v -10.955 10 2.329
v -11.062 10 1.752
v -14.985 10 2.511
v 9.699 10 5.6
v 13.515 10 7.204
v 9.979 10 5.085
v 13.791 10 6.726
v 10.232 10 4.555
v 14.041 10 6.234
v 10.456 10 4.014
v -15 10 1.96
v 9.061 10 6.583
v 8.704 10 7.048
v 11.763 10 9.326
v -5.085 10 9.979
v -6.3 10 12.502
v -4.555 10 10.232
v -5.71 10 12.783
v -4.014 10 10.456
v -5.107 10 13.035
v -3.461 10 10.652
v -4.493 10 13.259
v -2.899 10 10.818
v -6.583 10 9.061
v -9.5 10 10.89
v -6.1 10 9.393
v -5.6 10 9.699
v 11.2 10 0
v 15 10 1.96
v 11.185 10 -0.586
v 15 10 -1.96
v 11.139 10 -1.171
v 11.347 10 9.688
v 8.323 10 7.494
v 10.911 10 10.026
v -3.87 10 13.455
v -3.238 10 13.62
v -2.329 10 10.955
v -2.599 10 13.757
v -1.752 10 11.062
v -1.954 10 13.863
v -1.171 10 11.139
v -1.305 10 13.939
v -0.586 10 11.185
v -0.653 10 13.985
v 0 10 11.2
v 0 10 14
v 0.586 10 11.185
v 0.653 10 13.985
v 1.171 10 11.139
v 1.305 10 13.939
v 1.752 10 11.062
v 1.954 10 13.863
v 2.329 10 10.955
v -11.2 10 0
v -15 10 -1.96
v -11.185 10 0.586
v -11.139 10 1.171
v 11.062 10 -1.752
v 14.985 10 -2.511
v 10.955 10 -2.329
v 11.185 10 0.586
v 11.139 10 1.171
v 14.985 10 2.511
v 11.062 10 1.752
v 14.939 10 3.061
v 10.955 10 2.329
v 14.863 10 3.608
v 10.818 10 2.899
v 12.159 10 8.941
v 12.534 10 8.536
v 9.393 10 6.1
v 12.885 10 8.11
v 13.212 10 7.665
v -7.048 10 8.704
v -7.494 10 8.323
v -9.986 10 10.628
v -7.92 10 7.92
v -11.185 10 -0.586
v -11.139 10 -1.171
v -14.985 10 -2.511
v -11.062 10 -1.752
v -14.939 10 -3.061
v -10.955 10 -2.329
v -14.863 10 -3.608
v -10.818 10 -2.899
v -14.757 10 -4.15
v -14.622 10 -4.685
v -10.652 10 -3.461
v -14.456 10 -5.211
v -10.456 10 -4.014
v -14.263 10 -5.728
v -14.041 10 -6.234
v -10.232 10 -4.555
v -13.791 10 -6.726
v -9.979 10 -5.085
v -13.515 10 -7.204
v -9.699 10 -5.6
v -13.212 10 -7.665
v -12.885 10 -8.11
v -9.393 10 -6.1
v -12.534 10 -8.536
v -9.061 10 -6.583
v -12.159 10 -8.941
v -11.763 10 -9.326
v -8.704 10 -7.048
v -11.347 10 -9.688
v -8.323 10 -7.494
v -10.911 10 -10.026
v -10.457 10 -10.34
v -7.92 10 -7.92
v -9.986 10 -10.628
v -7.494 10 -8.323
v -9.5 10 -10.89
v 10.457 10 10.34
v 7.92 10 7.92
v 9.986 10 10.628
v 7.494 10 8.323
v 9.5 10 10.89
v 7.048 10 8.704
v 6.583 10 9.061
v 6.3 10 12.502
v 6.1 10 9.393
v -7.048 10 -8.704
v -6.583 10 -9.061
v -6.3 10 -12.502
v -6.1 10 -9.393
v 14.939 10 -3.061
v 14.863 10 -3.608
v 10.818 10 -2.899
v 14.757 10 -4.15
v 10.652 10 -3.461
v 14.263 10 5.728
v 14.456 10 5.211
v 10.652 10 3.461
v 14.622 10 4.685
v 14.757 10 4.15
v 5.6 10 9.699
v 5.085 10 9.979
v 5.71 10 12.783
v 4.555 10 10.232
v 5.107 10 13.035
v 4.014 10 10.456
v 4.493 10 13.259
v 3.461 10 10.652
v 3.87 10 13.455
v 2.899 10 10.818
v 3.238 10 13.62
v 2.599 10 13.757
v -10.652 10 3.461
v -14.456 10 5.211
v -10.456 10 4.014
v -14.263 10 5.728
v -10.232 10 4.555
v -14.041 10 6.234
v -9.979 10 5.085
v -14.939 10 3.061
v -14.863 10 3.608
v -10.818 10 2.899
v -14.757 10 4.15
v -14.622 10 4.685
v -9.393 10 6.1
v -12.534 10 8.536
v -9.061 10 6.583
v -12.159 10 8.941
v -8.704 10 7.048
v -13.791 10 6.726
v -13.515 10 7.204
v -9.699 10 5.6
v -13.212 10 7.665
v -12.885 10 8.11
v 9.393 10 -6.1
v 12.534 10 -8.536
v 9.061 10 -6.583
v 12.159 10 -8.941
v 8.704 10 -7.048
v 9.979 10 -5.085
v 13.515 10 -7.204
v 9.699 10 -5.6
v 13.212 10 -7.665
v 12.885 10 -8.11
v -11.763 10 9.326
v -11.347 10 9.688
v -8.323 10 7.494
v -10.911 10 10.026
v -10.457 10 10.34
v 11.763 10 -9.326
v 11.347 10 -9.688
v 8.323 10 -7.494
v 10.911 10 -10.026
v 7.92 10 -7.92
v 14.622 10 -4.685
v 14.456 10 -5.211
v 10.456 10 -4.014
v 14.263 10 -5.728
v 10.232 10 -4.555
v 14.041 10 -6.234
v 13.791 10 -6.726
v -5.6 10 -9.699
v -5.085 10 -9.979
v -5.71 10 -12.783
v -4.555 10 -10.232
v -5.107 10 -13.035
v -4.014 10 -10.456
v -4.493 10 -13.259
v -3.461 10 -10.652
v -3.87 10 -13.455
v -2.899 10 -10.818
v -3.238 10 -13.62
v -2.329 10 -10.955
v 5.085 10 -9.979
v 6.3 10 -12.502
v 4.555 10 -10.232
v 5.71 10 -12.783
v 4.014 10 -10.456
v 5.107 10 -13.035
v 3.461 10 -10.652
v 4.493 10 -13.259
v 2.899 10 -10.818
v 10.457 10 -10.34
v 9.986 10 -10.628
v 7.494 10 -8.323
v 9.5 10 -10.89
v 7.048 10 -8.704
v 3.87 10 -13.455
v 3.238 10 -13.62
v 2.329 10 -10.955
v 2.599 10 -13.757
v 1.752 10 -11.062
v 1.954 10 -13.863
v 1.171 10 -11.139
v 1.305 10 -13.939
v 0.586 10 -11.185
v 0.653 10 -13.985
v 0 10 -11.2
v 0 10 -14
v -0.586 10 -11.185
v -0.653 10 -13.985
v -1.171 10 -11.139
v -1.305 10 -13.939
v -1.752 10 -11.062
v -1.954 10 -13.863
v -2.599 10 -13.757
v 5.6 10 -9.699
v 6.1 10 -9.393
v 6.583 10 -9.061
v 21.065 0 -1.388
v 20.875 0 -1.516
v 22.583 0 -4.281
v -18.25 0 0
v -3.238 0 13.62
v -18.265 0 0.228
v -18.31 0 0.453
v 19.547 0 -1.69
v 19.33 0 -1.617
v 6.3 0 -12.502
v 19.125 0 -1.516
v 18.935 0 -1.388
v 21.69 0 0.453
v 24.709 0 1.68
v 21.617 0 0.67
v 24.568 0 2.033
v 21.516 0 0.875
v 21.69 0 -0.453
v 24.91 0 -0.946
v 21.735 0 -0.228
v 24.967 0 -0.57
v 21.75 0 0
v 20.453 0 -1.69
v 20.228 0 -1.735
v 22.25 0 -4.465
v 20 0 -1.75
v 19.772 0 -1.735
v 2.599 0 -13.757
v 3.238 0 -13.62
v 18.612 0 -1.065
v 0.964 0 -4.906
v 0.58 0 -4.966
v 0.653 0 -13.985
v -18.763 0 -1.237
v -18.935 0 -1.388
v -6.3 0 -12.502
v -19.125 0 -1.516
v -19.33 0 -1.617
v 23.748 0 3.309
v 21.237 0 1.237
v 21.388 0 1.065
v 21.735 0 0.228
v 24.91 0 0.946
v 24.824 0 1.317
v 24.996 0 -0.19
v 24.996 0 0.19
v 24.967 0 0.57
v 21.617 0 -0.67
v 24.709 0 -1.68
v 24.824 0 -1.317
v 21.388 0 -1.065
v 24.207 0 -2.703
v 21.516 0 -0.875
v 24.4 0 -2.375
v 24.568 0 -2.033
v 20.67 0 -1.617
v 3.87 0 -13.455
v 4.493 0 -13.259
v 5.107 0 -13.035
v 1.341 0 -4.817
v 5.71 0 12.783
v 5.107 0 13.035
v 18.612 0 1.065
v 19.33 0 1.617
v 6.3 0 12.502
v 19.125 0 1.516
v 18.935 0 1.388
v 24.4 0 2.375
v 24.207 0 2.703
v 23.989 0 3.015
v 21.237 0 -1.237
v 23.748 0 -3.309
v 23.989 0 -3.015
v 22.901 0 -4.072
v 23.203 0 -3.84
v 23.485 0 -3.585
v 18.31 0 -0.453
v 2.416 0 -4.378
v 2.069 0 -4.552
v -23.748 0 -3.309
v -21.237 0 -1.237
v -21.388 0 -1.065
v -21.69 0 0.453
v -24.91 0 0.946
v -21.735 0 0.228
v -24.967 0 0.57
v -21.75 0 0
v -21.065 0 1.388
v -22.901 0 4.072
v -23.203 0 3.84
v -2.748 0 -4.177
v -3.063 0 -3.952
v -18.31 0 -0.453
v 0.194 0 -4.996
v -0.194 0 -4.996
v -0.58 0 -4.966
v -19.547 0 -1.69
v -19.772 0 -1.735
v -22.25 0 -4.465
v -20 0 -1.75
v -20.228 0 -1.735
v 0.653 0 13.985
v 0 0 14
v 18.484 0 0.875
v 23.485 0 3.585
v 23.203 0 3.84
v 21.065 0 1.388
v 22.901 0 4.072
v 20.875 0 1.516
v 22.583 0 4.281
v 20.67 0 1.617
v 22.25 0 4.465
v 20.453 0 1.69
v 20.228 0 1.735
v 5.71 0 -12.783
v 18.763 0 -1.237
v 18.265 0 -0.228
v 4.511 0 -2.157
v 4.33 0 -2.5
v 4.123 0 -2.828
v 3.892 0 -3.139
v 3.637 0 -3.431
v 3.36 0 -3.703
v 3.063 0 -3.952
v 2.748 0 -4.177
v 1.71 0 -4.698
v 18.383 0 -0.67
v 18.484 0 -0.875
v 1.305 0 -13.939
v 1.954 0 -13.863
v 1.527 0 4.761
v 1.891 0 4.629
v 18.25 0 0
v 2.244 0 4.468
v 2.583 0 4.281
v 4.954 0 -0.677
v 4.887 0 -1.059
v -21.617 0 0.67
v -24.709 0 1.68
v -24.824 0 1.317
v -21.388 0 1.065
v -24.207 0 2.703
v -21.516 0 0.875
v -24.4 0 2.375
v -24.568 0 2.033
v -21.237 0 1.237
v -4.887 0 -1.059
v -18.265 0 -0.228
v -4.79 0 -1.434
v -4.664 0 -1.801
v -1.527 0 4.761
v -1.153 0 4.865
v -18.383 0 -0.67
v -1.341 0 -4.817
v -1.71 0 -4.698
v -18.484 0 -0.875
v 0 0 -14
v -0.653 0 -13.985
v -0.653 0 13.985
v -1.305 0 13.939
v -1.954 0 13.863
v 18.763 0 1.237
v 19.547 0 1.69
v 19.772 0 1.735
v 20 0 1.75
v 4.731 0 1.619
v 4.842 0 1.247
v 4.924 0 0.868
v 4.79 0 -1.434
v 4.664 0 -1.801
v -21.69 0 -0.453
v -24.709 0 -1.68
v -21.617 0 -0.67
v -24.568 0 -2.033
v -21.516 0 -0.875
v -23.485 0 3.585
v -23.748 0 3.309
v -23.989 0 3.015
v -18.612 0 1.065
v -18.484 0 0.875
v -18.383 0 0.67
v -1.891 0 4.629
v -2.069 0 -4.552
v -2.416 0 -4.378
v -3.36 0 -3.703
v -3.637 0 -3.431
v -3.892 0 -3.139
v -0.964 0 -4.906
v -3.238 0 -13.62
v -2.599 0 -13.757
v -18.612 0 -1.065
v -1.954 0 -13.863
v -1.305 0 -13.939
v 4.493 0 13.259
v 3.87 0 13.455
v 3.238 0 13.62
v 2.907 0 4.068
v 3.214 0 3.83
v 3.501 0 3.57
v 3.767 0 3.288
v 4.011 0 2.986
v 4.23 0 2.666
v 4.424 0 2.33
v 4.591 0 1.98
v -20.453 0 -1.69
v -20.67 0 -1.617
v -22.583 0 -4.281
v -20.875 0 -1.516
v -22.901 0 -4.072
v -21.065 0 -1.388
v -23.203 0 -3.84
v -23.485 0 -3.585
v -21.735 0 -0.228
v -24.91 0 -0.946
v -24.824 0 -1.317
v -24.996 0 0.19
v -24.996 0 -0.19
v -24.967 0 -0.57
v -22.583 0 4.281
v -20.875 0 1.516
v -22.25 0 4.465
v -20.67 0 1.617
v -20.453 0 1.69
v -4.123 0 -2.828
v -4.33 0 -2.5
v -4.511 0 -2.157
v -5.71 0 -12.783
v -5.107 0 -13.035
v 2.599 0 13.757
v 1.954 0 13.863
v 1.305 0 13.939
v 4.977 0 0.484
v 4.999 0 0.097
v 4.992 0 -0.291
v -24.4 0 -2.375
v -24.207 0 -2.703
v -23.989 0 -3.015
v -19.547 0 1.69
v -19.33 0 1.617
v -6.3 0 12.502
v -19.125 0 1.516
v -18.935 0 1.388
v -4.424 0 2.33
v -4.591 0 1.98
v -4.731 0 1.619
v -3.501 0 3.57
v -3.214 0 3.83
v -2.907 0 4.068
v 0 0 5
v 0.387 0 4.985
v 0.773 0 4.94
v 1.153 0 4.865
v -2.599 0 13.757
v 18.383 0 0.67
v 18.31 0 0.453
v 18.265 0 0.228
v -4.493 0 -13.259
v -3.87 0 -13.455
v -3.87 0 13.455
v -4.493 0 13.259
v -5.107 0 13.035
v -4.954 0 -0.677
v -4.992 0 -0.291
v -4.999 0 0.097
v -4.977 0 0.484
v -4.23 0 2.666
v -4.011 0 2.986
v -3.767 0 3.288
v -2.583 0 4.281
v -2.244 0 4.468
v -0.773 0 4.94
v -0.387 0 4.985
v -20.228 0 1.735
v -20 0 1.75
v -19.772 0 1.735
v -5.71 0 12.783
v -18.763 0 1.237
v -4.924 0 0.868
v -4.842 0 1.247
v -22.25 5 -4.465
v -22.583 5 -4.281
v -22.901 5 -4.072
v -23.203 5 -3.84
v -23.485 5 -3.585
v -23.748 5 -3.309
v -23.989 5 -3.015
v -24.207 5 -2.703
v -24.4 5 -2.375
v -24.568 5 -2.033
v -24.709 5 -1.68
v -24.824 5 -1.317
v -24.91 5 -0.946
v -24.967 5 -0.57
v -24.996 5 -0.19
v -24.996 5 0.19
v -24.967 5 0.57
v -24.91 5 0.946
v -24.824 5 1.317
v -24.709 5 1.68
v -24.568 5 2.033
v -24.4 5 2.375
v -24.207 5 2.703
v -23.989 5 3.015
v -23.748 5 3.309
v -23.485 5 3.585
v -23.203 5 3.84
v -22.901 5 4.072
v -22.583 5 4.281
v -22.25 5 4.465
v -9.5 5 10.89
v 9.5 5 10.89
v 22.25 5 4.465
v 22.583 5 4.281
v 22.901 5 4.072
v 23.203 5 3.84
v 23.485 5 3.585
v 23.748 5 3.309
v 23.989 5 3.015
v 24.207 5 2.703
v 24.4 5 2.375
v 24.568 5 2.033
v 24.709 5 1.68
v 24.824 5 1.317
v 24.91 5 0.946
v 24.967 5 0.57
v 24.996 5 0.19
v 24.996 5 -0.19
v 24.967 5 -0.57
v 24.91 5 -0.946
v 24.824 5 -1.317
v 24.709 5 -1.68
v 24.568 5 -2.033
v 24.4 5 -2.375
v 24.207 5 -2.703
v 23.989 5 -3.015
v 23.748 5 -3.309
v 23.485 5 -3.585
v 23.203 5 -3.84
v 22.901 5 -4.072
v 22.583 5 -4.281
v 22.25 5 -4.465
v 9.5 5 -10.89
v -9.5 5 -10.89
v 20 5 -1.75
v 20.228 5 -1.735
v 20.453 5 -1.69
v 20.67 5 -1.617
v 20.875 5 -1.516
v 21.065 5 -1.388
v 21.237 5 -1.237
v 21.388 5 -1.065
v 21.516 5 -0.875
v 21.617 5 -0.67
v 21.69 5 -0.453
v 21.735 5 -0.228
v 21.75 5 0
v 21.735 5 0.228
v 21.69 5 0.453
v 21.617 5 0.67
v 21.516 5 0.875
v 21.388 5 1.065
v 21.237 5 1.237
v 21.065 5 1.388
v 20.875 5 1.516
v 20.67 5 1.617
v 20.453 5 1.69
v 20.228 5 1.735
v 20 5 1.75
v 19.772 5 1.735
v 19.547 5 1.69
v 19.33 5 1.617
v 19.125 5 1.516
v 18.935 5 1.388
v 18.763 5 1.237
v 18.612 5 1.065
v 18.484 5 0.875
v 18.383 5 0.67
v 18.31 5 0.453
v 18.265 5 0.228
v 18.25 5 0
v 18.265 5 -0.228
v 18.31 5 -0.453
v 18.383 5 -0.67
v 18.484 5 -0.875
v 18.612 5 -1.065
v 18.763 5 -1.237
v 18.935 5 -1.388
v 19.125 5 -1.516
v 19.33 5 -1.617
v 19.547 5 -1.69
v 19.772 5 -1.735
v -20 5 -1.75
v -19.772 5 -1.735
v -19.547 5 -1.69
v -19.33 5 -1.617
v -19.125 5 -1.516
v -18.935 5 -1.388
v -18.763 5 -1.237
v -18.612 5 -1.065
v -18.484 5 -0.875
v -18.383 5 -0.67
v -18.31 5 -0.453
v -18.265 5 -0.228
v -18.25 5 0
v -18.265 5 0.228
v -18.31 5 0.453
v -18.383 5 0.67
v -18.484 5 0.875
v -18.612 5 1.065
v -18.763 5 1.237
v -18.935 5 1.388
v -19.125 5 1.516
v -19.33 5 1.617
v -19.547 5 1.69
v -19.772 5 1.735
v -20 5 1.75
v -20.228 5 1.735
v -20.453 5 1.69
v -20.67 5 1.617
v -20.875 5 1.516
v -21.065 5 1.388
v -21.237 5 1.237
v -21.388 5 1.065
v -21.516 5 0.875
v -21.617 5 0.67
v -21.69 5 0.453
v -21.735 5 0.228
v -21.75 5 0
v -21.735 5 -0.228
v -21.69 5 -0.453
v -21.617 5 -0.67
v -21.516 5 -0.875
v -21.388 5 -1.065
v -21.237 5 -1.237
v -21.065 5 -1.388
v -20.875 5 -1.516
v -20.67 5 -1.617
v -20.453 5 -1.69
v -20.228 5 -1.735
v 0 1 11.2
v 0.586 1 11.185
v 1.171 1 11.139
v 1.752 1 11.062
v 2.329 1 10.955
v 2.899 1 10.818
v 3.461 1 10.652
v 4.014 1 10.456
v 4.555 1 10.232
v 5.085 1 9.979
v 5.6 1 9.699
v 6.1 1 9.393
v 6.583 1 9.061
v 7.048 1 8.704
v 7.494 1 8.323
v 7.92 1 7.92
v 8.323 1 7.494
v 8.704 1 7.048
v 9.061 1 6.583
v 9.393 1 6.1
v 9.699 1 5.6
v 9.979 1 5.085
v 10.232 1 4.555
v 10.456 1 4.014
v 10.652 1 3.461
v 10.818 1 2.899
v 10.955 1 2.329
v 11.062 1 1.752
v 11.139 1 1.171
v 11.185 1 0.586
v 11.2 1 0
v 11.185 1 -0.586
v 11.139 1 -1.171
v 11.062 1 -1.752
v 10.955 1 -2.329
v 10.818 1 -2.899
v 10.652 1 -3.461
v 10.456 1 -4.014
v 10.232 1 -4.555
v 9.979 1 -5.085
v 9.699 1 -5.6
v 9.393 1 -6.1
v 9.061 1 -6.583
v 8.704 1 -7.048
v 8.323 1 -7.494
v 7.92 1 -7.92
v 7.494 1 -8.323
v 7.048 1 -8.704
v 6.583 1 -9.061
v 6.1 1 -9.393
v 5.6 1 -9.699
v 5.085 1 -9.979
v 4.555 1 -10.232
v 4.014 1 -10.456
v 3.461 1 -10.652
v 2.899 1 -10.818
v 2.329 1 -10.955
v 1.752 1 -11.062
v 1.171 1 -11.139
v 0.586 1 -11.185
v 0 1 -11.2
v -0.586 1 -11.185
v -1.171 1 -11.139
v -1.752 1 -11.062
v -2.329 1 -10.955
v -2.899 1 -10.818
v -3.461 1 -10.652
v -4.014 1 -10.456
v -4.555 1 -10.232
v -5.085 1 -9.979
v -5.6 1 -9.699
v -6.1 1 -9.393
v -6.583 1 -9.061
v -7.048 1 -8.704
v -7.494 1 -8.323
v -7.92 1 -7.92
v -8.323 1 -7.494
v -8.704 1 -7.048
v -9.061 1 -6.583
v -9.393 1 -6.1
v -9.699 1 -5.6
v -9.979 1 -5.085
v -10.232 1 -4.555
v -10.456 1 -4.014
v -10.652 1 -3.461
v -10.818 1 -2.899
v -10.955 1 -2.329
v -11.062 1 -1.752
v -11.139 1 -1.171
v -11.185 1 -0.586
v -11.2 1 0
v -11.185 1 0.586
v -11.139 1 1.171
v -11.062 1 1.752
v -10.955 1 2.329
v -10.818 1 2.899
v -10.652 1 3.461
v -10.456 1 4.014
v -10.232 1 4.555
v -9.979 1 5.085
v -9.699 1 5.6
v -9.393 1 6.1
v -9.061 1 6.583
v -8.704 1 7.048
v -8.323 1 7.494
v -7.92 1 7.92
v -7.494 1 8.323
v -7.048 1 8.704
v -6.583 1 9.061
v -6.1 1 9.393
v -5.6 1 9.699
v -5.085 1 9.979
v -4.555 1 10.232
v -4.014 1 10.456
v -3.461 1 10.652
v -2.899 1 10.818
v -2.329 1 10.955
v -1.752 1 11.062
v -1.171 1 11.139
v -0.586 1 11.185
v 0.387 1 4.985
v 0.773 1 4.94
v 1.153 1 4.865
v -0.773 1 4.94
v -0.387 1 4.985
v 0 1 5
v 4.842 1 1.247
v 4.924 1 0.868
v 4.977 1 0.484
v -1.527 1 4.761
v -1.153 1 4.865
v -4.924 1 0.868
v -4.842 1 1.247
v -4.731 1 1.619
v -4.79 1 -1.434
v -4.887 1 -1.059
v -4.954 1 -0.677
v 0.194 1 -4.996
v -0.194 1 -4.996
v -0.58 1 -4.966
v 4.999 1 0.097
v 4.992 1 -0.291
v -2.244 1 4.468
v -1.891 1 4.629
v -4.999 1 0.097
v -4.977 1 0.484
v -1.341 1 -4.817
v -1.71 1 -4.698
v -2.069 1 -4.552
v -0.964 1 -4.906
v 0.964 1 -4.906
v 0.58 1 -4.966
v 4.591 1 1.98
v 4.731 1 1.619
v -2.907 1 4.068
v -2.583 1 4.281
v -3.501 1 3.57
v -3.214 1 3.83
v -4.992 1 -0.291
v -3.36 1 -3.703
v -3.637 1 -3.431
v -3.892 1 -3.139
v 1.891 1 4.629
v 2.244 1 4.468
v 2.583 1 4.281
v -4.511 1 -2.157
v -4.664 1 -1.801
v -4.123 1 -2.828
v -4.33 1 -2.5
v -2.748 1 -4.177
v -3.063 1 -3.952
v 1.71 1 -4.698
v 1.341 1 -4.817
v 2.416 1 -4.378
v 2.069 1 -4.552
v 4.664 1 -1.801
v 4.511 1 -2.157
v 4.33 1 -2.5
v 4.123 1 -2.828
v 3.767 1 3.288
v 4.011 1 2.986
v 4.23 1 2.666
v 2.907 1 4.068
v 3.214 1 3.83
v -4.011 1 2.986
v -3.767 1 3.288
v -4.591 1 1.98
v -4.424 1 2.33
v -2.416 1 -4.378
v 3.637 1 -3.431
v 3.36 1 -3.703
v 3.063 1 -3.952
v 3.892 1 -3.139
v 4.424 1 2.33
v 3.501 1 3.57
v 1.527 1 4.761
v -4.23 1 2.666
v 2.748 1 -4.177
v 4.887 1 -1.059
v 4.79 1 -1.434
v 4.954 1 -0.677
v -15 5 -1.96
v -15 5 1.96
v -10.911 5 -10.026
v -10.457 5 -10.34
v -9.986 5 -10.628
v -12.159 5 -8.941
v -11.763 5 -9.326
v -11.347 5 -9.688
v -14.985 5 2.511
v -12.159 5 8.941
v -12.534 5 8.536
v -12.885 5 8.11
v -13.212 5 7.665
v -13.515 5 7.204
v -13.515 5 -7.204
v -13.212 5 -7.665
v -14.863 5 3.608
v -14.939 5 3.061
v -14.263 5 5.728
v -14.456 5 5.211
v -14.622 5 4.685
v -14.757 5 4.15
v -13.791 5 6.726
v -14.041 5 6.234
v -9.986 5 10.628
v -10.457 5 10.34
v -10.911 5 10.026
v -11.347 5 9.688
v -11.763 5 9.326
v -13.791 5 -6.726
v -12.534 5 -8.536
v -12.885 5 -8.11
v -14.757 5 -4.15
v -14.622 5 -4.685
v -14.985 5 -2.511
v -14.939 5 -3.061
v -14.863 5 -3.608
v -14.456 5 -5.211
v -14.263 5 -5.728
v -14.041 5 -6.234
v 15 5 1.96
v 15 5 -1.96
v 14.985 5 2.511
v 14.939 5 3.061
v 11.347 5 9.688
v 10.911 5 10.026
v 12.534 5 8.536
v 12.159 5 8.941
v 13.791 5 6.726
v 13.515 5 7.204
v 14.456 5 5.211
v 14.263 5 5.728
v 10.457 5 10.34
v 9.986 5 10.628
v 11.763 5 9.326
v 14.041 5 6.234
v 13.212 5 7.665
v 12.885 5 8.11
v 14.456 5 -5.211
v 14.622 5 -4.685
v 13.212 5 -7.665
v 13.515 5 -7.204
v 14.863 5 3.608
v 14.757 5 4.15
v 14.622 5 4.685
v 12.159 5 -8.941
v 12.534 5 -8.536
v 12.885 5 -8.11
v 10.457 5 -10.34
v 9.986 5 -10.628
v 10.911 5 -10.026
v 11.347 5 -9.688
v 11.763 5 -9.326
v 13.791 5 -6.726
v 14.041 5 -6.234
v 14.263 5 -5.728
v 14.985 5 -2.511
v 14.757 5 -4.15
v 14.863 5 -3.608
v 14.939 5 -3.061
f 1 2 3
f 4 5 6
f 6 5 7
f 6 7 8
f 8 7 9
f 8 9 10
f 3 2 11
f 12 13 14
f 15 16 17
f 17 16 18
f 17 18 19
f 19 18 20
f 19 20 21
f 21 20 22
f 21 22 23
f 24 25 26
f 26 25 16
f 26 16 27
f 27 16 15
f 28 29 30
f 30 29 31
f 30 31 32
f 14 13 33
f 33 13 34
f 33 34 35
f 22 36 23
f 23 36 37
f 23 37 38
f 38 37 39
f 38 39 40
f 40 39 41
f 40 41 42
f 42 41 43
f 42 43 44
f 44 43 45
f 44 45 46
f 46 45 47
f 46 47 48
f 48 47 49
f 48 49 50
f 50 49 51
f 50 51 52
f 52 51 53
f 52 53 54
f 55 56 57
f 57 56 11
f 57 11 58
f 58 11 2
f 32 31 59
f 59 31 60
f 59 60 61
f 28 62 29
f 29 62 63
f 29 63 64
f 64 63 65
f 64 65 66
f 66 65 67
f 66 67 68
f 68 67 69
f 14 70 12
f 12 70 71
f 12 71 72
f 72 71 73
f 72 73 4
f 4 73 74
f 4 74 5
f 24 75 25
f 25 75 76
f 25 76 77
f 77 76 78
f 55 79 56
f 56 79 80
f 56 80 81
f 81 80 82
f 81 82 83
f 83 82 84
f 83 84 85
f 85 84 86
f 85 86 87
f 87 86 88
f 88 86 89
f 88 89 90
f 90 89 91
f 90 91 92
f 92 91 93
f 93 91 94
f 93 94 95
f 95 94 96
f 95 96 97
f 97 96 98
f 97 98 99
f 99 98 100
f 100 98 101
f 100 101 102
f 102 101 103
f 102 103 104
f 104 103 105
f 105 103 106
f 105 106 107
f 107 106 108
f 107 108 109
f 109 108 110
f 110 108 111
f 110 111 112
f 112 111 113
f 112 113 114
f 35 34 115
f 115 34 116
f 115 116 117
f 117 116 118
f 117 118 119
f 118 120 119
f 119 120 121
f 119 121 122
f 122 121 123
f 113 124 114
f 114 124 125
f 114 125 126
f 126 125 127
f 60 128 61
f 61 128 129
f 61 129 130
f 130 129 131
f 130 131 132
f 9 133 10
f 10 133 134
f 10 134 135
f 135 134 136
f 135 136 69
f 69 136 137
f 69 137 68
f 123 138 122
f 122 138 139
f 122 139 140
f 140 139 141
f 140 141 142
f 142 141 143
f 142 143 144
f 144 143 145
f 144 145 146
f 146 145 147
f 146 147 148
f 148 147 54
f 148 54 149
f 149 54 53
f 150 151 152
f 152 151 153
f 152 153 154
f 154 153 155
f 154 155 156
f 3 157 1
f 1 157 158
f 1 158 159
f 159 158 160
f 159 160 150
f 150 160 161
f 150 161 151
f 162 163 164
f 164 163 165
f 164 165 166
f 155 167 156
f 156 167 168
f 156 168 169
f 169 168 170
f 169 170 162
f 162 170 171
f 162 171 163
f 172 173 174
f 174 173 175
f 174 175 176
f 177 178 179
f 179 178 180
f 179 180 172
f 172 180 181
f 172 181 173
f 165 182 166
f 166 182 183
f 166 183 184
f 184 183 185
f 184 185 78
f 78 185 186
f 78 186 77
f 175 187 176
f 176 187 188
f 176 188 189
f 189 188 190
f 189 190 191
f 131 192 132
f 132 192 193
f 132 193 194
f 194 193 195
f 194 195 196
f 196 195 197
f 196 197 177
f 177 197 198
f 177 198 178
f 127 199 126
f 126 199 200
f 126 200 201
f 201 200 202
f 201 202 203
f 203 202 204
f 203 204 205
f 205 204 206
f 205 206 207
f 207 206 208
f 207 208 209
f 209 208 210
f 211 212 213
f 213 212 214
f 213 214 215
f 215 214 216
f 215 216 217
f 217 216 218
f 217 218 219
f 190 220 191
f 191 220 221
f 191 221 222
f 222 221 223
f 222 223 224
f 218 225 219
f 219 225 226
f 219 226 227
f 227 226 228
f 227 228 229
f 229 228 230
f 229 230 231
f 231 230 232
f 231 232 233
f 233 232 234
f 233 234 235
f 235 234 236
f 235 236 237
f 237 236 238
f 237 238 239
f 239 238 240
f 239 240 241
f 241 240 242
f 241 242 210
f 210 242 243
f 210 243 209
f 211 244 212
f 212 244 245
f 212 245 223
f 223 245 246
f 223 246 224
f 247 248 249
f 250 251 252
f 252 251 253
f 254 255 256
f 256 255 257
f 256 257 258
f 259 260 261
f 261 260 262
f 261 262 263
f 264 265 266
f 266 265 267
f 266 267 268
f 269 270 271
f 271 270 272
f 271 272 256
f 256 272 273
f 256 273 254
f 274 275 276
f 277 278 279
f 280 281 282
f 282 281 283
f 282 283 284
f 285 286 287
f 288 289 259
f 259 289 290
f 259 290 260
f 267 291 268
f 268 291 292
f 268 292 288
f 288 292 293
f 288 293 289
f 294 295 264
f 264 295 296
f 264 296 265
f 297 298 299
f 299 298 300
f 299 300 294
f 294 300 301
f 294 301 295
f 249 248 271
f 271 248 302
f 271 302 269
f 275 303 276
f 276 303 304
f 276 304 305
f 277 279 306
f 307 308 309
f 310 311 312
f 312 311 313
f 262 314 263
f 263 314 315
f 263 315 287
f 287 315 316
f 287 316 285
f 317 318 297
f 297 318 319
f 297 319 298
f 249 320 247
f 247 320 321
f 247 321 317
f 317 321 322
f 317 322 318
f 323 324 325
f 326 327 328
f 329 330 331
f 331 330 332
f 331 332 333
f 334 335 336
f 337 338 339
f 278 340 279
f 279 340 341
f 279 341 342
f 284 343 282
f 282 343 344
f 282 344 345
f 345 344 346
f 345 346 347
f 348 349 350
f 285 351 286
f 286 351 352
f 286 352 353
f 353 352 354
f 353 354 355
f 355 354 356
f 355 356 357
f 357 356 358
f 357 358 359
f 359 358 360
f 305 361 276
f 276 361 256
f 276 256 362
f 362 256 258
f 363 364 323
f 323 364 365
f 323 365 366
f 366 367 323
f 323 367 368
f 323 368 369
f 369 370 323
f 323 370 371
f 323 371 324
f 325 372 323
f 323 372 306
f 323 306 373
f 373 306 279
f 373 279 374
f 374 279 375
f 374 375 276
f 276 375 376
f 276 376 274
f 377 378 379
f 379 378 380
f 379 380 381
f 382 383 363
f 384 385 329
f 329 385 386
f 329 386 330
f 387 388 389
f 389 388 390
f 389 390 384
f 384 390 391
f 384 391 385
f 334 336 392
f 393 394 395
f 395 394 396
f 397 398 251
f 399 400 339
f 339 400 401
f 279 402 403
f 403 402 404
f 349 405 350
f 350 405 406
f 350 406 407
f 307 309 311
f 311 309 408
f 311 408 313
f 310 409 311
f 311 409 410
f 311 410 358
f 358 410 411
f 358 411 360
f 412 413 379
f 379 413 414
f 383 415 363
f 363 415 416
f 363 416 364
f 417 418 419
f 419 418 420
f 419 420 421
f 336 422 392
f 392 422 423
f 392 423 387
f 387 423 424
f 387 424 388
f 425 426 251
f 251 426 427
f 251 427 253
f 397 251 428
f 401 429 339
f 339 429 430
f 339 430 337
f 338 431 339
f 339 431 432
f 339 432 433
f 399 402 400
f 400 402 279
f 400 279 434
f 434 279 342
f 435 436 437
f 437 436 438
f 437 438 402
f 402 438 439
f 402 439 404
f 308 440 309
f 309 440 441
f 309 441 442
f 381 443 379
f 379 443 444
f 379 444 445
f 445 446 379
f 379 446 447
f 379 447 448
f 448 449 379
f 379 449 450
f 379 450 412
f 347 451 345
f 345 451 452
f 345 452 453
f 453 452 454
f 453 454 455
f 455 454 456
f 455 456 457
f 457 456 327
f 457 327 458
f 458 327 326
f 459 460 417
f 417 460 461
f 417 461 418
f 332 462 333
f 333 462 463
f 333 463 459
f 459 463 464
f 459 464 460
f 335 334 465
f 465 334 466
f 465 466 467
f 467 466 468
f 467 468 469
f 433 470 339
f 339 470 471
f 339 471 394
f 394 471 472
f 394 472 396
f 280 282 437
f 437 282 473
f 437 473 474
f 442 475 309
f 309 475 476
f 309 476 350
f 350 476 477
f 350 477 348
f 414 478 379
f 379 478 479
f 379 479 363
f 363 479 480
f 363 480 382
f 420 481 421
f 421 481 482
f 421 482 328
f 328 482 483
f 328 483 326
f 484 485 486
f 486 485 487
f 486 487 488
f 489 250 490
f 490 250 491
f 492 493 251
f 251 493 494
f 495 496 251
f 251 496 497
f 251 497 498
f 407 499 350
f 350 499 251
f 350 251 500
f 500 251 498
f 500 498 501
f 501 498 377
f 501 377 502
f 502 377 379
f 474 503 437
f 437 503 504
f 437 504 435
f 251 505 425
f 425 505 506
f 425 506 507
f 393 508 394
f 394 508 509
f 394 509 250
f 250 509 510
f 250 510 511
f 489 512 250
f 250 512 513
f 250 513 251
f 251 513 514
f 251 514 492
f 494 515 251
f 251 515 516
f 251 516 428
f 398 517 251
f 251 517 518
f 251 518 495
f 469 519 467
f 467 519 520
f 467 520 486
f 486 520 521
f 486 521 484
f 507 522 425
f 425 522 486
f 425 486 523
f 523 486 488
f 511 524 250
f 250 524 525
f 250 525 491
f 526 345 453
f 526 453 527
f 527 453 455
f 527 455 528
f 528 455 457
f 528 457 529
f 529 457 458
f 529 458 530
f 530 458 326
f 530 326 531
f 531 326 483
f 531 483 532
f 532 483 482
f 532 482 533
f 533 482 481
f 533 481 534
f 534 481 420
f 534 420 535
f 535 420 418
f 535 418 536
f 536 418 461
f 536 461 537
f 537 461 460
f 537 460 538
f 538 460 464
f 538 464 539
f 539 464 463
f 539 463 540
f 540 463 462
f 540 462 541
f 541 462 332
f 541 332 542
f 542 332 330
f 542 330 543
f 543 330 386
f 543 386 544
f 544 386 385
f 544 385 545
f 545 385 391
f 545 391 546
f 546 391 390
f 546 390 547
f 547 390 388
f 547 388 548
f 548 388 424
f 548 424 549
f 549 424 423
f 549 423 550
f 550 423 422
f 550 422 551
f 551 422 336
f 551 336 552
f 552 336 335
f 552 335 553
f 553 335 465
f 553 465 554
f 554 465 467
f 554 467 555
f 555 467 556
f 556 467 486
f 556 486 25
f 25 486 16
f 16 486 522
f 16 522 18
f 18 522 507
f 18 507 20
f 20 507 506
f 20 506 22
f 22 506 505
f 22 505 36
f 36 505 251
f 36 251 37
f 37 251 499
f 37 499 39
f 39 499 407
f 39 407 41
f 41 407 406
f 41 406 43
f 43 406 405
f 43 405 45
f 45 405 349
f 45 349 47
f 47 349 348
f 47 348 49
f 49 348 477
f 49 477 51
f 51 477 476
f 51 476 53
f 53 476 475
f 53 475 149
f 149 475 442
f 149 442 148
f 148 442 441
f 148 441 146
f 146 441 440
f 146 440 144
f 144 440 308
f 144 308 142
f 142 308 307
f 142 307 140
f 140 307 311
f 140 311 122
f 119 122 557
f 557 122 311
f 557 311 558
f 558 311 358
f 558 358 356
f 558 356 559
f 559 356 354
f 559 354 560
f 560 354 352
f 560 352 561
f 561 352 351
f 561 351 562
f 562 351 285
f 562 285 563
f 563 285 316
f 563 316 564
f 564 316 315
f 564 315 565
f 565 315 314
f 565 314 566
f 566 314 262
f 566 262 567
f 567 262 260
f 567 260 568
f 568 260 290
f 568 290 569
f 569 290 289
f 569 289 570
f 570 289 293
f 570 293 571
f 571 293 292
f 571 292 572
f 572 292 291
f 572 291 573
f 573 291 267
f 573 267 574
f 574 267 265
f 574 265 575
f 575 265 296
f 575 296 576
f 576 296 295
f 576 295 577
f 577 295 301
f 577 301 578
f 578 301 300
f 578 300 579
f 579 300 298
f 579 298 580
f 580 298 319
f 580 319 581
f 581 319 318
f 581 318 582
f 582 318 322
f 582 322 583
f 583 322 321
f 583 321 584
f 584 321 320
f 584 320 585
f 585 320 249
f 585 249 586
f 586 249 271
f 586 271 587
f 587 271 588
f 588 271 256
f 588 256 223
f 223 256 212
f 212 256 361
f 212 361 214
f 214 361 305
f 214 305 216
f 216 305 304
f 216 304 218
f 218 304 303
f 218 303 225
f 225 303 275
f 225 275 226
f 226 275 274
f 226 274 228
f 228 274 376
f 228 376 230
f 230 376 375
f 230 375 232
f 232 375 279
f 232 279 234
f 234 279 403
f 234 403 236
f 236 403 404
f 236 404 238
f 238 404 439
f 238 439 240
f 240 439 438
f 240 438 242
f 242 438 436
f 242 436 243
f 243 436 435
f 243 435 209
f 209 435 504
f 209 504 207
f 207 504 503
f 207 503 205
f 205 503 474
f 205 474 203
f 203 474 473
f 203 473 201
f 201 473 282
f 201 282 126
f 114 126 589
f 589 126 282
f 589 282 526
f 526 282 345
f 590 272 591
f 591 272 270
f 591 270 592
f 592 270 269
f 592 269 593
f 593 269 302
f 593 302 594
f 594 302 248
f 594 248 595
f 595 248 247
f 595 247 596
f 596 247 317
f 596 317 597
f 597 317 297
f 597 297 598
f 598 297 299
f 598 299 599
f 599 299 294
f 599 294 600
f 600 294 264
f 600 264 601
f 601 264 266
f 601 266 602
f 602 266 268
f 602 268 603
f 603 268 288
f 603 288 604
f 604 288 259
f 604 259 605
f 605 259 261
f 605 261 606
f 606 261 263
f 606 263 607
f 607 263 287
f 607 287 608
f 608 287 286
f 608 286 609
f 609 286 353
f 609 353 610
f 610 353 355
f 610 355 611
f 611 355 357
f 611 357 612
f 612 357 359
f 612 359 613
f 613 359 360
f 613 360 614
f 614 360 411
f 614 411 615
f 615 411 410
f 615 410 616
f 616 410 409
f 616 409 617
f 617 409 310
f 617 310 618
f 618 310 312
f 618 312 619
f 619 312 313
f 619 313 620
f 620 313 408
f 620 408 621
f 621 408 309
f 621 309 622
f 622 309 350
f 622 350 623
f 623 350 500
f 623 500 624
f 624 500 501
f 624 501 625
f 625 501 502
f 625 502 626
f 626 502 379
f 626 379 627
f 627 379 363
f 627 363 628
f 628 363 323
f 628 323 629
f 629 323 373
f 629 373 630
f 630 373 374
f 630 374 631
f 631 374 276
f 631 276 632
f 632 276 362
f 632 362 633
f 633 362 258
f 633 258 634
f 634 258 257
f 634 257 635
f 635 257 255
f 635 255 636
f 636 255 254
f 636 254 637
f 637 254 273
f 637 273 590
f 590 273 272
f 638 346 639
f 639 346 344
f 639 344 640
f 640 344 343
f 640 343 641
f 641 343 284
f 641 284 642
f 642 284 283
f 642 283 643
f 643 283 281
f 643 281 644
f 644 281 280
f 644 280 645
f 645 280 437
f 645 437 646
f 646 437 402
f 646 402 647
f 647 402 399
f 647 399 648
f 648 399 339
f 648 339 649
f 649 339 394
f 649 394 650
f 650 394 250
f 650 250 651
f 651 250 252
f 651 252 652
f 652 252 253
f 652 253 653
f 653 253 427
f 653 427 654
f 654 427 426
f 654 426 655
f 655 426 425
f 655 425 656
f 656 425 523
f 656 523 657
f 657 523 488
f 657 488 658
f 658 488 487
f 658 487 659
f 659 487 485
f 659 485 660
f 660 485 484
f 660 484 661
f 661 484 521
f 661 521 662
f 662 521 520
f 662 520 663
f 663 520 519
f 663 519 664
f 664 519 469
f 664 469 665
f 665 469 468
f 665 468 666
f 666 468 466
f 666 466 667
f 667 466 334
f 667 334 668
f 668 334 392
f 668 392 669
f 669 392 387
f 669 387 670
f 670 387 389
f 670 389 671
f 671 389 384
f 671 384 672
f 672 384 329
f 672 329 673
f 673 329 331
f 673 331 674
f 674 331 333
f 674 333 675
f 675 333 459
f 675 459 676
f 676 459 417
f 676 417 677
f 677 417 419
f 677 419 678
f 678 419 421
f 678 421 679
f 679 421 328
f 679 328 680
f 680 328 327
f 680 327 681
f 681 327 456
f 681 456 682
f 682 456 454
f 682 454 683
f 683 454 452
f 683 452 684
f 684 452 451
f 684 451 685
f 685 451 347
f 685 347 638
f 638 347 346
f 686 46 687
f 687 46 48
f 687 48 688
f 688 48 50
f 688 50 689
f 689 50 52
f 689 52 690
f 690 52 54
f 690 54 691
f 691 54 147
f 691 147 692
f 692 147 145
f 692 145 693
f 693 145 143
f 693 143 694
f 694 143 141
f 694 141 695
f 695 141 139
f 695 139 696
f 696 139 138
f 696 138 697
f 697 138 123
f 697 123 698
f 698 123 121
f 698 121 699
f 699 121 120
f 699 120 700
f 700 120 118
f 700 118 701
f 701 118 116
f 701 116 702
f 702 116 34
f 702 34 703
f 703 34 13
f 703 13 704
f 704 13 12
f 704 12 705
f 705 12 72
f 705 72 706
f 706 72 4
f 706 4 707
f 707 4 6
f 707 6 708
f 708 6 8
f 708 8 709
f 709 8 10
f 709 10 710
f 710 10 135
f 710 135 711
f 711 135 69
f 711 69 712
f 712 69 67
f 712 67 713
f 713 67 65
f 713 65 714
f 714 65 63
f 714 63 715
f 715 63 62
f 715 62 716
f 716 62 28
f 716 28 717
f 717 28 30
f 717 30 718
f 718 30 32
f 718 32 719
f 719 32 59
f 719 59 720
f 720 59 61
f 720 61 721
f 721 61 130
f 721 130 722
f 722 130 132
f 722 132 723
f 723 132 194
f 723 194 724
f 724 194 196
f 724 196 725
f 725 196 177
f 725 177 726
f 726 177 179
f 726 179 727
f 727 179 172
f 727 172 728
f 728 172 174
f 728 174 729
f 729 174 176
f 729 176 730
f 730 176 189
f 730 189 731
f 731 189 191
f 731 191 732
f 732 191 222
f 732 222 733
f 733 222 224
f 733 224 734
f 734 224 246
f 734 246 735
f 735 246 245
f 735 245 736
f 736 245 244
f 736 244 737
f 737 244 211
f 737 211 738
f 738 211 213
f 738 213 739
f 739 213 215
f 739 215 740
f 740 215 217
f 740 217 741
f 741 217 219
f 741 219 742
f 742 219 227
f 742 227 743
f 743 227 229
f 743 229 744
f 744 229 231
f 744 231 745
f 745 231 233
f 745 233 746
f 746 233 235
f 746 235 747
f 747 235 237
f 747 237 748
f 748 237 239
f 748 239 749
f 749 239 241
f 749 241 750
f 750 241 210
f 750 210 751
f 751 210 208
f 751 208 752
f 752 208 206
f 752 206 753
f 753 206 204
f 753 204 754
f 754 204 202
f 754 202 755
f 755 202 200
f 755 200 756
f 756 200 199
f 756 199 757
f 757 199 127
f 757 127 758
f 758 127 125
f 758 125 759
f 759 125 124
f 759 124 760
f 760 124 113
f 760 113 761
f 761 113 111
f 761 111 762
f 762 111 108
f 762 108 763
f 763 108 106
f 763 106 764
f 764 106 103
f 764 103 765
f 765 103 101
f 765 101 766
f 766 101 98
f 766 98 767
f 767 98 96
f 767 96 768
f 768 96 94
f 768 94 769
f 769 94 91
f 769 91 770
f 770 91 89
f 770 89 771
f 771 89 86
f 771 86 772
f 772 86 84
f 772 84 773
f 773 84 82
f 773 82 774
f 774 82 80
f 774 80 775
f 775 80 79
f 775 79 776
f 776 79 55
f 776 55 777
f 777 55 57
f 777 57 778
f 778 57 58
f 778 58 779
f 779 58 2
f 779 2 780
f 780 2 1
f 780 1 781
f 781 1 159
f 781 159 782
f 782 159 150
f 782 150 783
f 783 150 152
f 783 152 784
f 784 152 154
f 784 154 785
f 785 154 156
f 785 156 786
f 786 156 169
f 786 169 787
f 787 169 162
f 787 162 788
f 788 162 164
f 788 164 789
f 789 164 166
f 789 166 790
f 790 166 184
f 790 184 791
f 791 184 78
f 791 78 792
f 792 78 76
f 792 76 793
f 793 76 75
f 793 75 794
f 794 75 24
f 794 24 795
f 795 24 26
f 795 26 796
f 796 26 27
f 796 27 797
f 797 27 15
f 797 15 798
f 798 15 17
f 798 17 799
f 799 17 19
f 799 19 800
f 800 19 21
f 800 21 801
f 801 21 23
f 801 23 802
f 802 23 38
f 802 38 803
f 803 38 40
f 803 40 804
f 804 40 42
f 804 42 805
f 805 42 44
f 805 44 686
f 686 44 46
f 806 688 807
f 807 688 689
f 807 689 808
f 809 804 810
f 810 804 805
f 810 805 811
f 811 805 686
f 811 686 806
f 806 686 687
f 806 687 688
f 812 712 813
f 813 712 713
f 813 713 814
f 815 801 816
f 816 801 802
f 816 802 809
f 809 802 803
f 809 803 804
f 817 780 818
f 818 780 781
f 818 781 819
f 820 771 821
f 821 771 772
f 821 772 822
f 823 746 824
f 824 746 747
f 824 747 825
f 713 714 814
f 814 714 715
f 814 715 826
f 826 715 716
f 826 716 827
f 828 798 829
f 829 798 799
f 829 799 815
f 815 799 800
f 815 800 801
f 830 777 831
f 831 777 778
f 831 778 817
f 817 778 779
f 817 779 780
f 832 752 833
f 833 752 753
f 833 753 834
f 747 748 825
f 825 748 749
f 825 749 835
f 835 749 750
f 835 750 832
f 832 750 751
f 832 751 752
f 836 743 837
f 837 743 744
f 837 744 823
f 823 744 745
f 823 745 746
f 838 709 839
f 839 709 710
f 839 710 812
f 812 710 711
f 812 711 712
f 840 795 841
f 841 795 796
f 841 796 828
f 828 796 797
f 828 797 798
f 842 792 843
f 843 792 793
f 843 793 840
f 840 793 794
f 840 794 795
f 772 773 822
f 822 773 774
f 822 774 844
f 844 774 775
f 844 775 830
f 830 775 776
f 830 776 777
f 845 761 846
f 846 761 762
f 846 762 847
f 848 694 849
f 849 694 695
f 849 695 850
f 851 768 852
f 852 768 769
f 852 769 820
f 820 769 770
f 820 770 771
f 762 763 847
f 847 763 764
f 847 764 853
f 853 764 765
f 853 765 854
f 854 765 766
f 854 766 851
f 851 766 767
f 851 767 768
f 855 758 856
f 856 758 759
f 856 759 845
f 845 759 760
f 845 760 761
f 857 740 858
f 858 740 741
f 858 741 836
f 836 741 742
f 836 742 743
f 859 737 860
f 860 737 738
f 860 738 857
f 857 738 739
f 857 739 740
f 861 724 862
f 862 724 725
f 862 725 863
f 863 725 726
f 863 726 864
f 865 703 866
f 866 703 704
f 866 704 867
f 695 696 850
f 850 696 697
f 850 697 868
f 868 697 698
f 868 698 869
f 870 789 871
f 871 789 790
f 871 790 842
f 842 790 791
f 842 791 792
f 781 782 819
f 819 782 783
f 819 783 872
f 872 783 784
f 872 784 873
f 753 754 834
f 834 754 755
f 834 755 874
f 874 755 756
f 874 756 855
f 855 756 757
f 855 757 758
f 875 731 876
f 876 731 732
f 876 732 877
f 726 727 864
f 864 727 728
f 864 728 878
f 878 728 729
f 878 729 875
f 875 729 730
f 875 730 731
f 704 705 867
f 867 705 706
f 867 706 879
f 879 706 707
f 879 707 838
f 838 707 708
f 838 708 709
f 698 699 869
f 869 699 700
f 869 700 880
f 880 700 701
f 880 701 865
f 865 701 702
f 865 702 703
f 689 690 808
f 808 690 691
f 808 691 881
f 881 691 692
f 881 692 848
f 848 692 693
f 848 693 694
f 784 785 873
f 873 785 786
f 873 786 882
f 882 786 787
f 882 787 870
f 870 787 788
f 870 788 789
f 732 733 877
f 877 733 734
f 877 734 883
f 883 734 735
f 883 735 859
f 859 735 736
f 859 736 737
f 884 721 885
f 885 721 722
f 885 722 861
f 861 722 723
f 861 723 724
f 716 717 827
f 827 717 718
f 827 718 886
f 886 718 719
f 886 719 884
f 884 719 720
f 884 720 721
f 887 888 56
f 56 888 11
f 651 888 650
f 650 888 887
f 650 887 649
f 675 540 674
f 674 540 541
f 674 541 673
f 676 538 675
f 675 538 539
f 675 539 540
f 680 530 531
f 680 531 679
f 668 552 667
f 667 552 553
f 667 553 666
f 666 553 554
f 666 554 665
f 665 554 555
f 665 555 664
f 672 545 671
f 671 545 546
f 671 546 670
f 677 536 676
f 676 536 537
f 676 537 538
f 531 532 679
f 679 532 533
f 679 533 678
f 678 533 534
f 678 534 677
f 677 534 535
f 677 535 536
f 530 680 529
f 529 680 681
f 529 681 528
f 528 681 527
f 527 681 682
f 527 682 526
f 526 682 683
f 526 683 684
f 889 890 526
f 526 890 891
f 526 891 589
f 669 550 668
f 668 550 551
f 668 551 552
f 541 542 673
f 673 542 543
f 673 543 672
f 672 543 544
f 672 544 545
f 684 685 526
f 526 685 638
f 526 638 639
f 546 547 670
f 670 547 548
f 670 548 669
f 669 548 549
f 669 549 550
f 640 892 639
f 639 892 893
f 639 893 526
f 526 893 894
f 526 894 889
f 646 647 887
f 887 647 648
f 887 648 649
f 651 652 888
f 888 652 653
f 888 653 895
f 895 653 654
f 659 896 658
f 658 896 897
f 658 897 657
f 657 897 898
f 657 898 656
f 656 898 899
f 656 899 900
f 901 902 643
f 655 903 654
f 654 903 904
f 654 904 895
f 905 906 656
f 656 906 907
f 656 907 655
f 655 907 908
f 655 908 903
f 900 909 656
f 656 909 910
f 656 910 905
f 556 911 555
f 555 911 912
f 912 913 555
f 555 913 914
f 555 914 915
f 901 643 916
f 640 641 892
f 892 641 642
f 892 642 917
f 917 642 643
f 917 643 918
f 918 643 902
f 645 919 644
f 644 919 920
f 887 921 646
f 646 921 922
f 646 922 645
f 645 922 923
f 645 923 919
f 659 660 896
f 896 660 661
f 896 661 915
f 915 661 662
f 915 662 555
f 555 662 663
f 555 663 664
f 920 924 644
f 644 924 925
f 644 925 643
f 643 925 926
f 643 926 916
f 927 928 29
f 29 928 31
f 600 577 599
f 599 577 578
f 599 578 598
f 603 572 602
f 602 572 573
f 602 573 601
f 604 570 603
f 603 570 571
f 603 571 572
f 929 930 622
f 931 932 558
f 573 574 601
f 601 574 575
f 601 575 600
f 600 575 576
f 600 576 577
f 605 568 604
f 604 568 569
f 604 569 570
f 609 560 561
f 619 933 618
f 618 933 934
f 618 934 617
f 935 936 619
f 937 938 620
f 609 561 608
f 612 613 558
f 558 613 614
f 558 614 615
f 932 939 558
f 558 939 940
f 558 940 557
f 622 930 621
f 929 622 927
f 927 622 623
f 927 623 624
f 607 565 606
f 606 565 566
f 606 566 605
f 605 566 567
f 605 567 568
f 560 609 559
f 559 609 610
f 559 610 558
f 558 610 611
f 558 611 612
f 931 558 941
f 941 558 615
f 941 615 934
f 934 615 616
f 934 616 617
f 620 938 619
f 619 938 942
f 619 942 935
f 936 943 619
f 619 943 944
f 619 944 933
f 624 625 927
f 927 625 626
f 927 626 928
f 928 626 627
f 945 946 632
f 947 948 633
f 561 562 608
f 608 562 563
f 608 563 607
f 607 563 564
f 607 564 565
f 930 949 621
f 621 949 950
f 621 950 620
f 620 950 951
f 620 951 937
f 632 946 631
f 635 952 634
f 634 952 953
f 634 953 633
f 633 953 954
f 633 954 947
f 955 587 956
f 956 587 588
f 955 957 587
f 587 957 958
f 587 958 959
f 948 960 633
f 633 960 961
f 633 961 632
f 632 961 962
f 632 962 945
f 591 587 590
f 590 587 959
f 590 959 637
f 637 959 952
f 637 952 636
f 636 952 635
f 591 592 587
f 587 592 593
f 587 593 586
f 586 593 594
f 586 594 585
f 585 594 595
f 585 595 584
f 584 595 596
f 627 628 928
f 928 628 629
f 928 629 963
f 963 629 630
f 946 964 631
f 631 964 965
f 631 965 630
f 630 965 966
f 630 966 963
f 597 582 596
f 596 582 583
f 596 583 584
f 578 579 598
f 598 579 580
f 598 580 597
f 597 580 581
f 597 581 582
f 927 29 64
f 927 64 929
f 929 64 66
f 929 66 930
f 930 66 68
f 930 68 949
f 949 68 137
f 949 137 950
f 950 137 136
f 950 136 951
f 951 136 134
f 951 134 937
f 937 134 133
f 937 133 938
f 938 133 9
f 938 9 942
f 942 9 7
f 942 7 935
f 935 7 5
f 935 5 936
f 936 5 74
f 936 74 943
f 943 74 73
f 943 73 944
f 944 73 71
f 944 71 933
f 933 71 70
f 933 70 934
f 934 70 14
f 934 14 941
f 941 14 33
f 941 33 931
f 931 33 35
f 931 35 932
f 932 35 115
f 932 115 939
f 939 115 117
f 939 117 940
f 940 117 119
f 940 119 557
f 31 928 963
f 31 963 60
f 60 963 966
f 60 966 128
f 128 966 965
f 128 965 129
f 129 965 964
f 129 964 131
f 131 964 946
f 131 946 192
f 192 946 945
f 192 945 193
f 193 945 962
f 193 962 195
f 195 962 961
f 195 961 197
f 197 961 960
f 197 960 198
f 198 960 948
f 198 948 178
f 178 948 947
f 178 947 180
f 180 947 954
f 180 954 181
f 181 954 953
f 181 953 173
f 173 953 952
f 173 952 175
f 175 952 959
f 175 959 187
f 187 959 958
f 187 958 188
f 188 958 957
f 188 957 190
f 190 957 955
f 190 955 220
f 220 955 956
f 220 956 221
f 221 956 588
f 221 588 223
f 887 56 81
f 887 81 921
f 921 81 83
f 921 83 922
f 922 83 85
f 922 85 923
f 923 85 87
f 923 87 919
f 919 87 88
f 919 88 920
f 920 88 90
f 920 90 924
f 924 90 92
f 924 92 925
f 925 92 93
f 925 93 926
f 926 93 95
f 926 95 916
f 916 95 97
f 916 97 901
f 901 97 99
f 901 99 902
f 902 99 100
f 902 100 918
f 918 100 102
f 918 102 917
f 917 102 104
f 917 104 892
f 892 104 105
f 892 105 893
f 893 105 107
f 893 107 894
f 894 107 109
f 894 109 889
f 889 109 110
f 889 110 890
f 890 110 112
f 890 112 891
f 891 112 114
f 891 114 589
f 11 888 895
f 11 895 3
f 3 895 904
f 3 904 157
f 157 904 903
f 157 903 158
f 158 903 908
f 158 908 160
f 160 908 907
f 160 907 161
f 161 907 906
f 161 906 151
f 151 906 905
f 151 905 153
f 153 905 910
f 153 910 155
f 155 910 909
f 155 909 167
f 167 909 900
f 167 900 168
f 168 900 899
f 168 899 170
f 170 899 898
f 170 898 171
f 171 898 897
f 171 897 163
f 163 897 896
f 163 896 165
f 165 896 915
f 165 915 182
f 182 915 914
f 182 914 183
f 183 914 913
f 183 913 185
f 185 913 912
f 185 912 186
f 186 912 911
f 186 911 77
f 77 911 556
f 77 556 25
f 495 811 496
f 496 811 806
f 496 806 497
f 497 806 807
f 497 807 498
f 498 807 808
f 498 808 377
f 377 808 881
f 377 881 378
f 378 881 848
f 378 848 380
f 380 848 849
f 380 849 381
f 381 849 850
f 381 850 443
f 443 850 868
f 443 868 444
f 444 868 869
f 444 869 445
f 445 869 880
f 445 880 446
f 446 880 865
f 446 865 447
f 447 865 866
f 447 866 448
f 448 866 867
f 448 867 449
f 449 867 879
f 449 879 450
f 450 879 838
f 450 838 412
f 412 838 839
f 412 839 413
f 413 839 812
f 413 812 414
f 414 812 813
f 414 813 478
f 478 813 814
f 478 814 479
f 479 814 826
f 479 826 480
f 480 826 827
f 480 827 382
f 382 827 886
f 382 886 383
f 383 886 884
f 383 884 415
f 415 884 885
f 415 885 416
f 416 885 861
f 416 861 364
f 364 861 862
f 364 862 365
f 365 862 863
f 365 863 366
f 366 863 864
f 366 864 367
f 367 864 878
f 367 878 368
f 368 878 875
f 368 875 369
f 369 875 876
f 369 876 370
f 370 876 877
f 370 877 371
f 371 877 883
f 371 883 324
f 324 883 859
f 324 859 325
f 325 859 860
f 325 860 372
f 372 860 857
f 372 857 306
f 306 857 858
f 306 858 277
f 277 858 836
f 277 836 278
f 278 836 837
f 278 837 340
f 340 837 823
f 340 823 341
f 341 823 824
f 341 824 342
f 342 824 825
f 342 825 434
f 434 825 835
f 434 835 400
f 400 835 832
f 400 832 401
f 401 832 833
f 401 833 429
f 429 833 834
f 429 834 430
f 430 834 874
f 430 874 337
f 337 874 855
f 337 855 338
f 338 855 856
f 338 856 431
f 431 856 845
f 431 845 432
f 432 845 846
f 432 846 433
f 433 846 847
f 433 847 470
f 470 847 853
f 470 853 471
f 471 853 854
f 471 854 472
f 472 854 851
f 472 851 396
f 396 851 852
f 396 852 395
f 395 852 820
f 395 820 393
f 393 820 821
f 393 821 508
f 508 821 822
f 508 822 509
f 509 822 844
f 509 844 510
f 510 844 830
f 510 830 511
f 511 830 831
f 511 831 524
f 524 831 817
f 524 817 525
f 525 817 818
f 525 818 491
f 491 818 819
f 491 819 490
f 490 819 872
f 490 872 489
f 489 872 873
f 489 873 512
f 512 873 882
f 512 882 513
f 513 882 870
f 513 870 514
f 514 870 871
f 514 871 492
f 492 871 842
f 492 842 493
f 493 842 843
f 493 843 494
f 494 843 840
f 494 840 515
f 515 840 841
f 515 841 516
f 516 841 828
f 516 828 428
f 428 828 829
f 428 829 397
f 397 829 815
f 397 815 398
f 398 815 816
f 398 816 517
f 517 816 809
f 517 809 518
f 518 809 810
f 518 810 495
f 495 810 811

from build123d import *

# Parameters (mm, degrees)
SKETCH2_R               = 1.75
BOSS_EXTRUDE1_DEPTH     = 10
SKETCH3_R               = 11.2
CUT_EXTRUDE1_DEPTH      = 9
SKETCH4_W               = 10
SKETCH4_H               = 5
CUT_EXTRUDE2_DEPTH      = 15
CUT_EXTRUDE2_DEPTH_BACK = 15
FILLET1_R               = 10
SKETCH5_R               = 5
CUT_EXTRUDE3_DEPTH      = 10
CUT_EXTRUDE3_DEPTH_BACK = 2


with BuildPart() as part:
    # Sketch2 → Boss-Extrude1 (new body)
    with BuildSketch(Plane(origin=(0, 0, 0), x_dir=(1, 0, 0), z_dir=(0, 1, 0))):
        with BuildLine():
            Line((-22.25, 4.465142775), (-6.3, 12.50239977))
            ThreePointArc((-6.3, 12.50239977), (0, 14), (6.3, 12.50239977))
            Line((6.3, 12.50239977), (22.25, 4.465142775))
            ThreePointArc((22.25, 4.465142775), (25, 0), (22.25, -4.465142775))
            Line((22.25, -4.465142775), (6.3, -12.50239977))
            ThreePointArc((6.3, -12.50239977), (0, -14), (-6.3, -12.50239977))
            Line((-6.3, -12.50239977), (-22.25, -4.465142775))
            ThreePointArc((-22.25, -4.465142775), (-25, 0), (-22.25, 4.465142775))
        make_face()
        with Locations((-20, 0)):
            Circle(SKETCH2_R, mode=Mode.SUBTRACT)
        with Locations((20, 0)):
            Circle(SKETCH2_R, mode=Mode.SUBTRACT)
    extrude(amount=BOSS_EXTRUDE1_DEPTH)

    # Sketch3 → Cut-Extrude1 (cut)
    with BuildSketch(Plane(origin=(0, 10, 0), x_dir=(1, 0, 0), z_dir=(0, 1, 0))):
        Circle(SKETCH3_R)
    extrude(amount=-CUT_EXTRUDE1_DEPTH, mode=Mode.SUBTRACT)

    # Sketch4 → Cut-Extrude2 (cut, two sides)
    with BuildSketch(Plane.XY) as cut_extrude2_sk:
        with Locations((-20, 7.5)):
            Rectangle(SKETCH4_W, SKETCH4_H)
        with Locations((20, 7.5)):
            Rectangle(SKETCH4_W, SKETCH4_H)
    extrude(amount=CUT_EXTRUDE2_DEPTH, mode=Mode.SUBTRACT)
    extrude(cut_extrude2_sk.sketch, amount=-CUT_EXTRUDE2_DEPTH_BACK, mode=Mode.SUBTRACT)

    # Fillet1
    fillet1_edges = [part.edges().sort_by_distance(p)[0] for p in [
        (-15, 7.5, -8.118441409),
        (15, 7.5, -8.118441409),
        (-15, 7.5, 8.118441409),
        (15, 7.5, 8.118441409),
    ]]
    fillet(fillet1_edges, radius=FILLET1_R)

    # Sketch5 → Cut-Extrude3 (cut, two sides)
    with BuildSketch(Plane(origin=(0, 1, 0), x_dir=(1, 0, 0), z_dir=(0, 1, 0))) as cut_extrude3_sk:
        Circle(SKETCH5_R)
    extrude(amount=CUT_EXTRUDE3_DEPTH, mode=Mode.SUBTRACT)
    extrude(cut_extrude3_sk.sketch, amount=-CUT_EXTRUDE3_DEPTH_BACK, mode=Mode.SUBTRACT)


solid = part.part
